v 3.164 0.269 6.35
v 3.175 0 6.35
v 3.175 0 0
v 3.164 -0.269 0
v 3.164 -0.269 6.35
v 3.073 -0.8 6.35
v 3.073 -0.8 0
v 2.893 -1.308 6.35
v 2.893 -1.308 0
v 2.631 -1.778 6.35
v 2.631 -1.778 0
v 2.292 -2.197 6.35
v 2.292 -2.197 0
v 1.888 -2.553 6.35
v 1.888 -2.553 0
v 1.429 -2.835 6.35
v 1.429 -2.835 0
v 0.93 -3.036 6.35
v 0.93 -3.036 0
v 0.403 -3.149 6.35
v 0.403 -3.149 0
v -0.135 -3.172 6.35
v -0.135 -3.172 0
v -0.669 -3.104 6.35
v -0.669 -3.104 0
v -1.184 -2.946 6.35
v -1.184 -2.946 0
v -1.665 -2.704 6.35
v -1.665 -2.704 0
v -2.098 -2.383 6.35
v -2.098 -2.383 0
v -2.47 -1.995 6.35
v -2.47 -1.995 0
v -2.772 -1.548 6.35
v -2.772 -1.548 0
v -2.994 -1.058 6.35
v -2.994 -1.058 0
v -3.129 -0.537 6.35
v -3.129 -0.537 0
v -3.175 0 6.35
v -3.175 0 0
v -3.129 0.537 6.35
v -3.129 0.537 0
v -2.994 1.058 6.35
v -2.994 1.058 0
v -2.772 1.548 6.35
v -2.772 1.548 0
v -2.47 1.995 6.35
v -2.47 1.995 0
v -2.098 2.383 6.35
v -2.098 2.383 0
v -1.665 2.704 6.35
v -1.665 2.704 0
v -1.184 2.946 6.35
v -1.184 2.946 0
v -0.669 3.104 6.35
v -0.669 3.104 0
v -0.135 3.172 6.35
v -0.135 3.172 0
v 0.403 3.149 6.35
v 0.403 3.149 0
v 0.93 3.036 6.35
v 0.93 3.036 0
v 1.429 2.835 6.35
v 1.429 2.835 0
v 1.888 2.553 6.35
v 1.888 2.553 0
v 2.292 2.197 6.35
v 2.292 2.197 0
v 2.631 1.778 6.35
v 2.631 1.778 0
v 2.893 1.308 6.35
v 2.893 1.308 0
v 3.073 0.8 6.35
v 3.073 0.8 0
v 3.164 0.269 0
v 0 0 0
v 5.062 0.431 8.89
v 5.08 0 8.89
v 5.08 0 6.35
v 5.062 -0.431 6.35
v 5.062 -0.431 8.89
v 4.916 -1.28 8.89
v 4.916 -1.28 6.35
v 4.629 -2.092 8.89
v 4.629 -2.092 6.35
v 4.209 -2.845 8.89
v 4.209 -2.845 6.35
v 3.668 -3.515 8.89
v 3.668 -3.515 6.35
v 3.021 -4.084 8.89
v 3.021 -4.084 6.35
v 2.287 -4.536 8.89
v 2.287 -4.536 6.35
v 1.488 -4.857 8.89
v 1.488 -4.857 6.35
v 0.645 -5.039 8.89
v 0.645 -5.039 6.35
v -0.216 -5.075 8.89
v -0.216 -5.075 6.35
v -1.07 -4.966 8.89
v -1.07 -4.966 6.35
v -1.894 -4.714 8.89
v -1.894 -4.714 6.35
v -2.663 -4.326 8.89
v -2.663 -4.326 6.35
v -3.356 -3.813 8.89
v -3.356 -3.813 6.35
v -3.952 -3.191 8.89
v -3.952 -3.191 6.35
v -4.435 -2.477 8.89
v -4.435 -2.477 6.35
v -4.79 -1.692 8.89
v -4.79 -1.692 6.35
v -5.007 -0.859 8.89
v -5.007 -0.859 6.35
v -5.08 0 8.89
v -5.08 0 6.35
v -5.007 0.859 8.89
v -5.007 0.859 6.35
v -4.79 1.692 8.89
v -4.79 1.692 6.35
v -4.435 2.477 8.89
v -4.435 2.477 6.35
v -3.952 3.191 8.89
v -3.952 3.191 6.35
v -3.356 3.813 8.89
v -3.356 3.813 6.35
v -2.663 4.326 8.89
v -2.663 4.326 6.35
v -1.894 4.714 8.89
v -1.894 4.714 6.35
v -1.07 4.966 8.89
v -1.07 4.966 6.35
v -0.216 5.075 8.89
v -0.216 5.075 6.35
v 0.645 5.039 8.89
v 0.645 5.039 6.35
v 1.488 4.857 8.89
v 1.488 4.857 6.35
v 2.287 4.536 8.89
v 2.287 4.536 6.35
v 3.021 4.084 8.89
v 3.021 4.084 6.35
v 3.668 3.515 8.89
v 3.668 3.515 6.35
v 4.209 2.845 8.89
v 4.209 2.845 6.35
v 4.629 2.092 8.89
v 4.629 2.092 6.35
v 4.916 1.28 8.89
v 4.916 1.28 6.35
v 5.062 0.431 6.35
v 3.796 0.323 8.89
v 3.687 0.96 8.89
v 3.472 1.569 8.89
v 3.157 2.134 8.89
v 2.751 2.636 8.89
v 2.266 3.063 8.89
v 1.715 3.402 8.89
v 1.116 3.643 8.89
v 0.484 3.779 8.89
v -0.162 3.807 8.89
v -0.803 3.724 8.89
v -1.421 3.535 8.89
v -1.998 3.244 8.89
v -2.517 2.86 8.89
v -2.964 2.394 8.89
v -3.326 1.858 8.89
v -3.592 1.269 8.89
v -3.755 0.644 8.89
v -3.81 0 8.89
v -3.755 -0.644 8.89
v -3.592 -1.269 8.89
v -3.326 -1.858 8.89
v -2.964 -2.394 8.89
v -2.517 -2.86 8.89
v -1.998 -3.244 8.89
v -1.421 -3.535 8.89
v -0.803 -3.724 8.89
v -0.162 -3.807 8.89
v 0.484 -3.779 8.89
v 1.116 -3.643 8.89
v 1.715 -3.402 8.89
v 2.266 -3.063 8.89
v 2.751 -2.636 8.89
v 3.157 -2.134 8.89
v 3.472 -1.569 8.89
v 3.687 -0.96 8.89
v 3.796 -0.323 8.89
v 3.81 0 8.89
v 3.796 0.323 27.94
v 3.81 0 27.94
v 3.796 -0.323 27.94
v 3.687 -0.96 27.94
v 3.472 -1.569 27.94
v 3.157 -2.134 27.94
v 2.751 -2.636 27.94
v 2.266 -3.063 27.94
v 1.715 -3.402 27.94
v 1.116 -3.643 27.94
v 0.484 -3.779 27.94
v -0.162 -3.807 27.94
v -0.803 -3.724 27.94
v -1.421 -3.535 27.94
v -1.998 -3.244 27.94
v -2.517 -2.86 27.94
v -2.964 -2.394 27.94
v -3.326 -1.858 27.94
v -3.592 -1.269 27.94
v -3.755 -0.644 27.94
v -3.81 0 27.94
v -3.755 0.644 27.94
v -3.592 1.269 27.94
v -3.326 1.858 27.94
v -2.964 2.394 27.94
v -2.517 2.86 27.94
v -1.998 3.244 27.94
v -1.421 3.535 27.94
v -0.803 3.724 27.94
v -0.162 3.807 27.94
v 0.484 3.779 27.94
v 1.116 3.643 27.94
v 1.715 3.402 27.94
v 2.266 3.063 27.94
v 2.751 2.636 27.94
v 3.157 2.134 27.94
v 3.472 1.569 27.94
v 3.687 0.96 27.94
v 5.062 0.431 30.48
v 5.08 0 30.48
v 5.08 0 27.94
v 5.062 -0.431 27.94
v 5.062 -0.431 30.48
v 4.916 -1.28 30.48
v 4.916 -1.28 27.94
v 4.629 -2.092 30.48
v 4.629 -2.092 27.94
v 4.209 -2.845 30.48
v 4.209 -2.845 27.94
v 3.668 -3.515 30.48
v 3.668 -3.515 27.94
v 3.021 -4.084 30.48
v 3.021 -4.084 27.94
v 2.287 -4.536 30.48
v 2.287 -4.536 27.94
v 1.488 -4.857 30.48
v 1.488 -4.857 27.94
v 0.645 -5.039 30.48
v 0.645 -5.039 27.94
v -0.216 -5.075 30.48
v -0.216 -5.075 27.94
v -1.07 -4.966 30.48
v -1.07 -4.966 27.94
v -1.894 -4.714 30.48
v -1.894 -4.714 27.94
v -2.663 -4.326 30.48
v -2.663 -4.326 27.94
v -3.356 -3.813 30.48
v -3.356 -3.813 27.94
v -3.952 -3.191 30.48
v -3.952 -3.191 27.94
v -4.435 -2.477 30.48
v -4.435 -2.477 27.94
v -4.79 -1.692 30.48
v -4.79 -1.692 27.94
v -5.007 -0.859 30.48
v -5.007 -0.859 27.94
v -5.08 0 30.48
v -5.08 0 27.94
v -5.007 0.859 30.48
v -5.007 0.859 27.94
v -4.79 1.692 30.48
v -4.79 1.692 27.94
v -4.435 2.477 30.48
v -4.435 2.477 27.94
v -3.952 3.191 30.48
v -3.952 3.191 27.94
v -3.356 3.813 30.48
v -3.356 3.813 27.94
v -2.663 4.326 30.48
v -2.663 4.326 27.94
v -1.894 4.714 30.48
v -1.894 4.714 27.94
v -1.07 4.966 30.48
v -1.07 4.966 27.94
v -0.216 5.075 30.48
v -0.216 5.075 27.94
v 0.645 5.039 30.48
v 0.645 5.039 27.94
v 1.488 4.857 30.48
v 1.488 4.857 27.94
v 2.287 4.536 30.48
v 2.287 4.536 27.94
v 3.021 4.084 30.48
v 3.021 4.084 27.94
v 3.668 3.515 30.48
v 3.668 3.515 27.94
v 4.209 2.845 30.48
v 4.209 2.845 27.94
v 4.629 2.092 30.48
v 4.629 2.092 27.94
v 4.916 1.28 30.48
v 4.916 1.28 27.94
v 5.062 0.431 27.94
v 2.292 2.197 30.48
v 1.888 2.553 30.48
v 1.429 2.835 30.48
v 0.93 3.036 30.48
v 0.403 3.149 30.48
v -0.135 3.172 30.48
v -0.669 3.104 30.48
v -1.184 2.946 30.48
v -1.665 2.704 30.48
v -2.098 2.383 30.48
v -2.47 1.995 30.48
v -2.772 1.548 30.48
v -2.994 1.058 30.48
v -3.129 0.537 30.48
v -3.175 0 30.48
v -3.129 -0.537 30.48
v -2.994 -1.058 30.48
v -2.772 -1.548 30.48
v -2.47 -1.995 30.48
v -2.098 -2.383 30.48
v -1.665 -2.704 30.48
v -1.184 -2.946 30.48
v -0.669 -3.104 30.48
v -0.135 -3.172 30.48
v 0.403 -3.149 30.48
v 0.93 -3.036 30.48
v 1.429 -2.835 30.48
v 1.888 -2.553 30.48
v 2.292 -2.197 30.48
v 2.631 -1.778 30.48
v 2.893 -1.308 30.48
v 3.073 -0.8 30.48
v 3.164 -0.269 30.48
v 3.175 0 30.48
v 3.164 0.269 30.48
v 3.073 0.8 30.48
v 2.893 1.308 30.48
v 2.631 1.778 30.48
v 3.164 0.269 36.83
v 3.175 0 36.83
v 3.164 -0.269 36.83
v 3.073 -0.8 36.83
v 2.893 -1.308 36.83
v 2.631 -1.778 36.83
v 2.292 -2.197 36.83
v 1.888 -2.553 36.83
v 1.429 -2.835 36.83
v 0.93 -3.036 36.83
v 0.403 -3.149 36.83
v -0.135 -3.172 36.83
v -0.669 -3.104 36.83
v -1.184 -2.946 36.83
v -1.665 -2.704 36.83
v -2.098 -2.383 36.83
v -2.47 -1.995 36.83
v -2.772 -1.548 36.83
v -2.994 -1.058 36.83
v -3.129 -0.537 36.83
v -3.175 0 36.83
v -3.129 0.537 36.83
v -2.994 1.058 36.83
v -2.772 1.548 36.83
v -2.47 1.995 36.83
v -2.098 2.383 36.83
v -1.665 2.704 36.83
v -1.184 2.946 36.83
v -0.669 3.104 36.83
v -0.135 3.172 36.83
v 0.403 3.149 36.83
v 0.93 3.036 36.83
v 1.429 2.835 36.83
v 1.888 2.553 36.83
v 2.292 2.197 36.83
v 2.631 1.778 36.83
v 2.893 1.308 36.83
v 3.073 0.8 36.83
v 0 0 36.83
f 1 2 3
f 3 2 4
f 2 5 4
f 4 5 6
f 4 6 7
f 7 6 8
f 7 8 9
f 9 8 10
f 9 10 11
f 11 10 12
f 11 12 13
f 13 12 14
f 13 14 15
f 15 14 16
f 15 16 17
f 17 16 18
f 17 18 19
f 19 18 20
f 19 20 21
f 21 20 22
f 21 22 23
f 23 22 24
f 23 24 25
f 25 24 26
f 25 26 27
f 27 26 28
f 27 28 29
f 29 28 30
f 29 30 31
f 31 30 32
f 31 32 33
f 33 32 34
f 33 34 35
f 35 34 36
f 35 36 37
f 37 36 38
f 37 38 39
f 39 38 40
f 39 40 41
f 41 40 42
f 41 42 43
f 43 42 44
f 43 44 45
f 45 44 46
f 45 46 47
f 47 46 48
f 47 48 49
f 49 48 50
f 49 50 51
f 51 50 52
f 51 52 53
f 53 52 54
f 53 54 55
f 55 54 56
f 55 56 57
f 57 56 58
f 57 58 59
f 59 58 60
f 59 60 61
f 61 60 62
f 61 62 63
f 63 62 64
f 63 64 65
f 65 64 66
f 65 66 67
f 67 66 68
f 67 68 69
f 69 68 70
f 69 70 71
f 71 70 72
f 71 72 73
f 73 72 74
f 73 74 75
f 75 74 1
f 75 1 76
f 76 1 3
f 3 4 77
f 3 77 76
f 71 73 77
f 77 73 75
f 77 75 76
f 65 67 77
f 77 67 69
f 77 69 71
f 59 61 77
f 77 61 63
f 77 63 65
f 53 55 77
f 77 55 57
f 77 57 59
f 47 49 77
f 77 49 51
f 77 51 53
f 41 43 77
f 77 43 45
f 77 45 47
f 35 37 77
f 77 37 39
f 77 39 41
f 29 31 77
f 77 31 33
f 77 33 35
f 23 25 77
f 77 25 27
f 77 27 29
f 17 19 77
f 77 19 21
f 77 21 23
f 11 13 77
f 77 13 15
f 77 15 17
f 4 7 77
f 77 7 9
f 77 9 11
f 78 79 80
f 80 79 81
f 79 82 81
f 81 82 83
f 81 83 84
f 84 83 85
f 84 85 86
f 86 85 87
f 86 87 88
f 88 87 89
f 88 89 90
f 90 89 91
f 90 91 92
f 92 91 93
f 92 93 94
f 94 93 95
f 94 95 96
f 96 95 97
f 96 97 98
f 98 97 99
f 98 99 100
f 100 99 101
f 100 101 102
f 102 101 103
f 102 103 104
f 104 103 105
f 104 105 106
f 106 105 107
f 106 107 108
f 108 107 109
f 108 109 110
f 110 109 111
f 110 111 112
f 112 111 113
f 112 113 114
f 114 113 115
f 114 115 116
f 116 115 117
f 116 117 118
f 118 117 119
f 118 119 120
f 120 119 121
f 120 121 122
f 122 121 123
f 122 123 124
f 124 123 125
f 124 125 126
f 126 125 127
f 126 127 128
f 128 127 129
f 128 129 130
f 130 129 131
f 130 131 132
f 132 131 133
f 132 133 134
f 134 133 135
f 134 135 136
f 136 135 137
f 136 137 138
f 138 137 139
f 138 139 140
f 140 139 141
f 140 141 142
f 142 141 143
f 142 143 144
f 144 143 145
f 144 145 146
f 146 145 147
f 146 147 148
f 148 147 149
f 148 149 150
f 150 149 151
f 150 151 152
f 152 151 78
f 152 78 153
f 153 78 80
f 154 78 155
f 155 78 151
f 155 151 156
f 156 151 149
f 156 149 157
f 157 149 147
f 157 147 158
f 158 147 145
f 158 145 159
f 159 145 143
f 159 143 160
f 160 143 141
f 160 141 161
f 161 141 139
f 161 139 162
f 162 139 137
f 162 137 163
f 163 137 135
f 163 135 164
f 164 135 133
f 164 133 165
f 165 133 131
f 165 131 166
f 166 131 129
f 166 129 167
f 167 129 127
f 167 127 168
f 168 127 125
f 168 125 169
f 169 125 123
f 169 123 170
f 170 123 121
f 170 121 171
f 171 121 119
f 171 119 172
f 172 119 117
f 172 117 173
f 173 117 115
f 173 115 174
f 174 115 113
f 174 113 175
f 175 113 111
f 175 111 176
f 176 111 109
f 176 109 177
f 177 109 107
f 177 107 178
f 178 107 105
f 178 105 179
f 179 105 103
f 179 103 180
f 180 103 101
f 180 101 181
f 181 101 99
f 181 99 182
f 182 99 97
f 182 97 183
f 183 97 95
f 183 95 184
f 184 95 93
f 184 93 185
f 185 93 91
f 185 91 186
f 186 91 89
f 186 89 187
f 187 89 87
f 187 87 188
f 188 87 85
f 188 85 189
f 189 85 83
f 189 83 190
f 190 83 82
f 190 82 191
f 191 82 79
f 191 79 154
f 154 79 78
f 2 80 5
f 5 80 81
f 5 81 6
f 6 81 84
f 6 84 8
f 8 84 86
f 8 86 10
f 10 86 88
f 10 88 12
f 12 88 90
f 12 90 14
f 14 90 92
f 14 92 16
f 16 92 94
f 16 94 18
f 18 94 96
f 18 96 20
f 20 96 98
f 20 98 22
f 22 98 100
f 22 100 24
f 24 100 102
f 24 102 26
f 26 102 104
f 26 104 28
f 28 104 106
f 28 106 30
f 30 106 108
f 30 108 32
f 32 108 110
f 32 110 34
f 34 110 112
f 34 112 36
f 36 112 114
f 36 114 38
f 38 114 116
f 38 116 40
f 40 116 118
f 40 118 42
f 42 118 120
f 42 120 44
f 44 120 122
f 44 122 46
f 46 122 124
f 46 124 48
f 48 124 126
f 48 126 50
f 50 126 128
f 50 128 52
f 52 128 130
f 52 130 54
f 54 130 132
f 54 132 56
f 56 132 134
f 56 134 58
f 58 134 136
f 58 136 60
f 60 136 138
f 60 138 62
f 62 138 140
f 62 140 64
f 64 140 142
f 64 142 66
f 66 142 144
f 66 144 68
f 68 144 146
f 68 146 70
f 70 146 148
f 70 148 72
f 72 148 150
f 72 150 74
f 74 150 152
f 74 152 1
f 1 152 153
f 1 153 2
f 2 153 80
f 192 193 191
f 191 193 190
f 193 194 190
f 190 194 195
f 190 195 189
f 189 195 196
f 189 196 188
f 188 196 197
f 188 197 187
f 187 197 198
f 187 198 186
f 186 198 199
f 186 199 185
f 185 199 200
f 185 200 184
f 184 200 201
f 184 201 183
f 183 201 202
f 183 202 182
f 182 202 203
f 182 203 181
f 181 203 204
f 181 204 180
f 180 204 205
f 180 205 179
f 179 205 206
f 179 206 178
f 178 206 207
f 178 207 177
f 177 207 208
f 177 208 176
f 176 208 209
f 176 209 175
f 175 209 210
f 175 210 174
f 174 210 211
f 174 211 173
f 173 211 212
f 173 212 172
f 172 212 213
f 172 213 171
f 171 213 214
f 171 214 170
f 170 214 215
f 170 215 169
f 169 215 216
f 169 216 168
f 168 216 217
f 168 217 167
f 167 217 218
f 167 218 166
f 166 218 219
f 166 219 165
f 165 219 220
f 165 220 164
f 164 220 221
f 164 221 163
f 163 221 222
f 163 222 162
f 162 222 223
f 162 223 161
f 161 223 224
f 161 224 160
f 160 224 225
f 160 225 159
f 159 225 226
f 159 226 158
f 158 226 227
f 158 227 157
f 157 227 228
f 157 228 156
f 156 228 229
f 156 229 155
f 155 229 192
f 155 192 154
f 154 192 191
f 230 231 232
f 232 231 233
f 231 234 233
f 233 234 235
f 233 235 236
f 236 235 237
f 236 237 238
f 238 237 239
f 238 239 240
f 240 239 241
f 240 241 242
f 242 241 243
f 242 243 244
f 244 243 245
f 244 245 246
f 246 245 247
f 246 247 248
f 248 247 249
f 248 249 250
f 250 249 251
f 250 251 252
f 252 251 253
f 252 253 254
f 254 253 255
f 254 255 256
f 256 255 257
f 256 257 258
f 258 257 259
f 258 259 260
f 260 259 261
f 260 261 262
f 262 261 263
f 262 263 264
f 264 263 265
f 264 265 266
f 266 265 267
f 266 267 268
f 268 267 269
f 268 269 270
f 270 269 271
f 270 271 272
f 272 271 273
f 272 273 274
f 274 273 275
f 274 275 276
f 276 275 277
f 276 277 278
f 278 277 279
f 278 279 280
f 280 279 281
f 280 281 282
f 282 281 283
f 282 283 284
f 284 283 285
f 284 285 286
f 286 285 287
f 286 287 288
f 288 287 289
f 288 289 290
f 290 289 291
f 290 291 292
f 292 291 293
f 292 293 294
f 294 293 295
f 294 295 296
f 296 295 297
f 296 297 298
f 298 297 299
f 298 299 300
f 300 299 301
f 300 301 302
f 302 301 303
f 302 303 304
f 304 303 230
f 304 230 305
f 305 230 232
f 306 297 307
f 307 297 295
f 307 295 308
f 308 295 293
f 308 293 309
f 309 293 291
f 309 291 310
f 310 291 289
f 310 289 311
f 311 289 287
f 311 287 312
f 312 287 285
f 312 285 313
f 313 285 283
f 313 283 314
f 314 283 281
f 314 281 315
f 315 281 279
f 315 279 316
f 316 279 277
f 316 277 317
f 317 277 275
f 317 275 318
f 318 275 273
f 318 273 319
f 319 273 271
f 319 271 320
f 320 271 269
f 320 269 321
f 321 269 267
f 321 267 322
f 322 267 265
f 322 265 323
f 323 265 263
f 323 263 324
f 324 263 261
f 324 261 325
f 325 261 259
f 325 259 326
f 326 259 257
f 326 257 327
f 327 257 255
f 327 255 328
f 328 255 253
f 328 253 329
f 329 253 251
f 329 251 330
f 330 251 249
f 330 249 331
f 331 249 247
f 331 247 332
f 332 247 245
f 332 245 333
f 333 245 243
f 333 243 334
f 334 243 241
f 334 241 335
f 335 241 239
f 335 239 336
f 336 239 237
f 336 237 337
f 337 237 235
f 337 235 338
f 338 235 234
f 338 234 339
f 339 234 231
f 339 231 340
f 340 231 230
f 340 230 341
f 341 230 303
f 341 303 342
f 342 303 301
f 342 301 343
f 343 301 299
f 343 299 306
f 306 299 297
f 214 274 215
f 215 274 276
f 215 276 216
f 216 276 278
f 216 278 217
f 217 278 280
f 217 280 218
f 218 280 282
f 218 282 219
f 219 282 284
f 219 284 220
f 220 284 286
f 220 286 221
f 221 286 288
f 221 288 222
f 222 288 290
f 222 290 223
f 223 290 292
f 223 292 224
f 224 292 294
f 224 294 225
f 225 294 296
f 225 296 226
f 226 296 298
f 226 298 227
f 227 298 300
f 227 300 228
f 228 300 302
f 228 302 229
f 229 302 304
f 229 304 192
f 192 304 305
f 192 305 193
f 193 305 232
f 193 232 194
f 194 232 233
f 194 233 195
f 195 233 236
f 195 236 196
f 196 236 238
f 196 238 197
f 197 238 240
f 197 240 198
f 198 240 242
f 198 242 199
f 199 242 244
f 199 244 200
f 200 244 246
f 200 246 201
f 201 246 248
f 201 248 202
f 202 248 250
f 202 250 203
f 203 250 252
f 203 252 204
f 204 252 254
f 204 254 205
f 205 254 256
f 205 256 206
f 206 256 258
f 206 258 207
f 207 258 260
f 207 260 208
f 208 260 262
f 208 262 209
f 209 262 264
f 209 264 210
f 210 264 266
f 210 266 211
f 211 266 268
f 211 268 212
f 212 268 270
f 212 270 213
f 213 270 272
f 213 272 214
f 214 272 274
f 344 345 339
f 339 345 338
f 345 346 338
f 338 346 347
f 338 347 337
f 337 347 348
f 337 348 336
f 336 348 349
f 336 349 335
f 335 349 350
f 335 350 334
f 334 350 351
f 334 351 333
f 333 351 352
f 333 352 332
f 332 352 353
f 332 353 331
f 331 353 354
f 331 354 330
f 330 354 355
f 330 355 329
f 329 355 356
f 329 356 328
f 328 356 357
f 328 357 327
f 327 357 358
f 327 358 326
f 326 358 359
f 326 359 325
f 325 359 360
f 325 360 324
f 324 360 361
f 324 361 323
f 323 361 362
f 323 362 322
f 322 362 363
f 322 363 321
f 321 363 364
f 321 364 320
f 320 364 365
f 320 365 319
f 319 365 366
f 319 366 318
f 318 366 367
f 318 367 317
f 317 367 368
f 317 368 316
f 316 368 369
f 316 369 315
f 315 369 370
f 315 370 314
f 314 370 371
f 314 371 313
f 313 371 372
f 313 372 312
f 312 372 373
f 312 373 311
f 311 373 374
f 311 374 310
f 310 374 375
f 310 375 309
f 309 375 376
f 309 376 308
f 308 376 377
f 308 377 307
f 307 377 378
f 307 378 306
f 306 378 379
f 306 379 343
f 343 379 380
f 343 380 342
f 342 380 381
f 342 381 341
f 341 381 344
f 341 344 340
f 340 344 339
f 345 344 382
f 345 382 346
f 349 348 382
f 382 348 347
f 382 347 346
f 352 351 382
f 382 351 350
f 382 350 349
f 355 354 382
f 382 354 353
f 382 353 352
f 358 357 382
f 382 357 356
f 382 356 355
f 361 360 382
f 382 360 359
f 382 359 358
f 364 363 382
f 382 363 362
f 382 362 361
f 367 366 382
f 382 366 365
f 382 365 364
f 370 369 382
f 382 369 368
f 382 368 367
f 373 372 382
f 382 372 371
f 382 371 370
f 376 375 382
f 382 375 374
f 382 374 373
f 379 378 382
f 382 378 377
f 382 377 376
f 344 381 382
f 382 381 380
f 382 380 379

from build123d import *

# Parameters (mm, degrees)
SKETCH1_R           = 3.175
BOSS_EXTRUDE1_DEPTH = 6.35
SKETCH2_R           = 5.08
BOSS_EXTRUDE2_DEPTH = 2.54
SKETCH3_R           = 3.81
BOSS_EXTRUDE3_DEPTH = 19.05
SKETCH4_R           = 5.08
BOSS_EXTRUDE4_DEPTH = 2.54
SKETCH5_R           = 3.175
BOSS_EXTRUDE5_DEPTH = 6.35


with BuildPart() as part:
    # Sketch1 → Boss-Extrude1 (new body)
    with BuildSketch(Plane.XY):
        Circle(SKETCH1_R)
    extrude(amount=BOSS_EXTRUDE1_DEPTH)

    # Sketch2 → Boss-Extrude2 (add)
    with BuildSketch(Plane.XY.offset(6.35)):
        Circle(SKETCH2_R)
    extrude(amount=BOSS_EXTRUDE2_DEPTH)

    # Sketch3 → Boss-Extrude3 (add)
    with BuildSketch(Plane.XY.offset(8.89)):
        with Locations(Location((0, 0, 0), (0, 0, 180))):
            Circle(SKETCH3_R)
    extrude(amount=BOSS_EXTRUDE3_DEPTH)

    # Sketch4 → Boss-Extrude4 (add)
    with BuildSketch(Plane.XY.offset(27.94)):
        Circle(SKETCH4_R)
    extrude(amount=BOSS_EXTRUDE4_DEPTH)

    # Sketch5 → Boss-Extrude5 (add)
    with BuildSketch(Plane.XY.offset(30.48)):
        Circle(SKETCH5_R)
    extrude(amount=BOSS_EXTRUDE5_DEPTH)


solid = part.part
